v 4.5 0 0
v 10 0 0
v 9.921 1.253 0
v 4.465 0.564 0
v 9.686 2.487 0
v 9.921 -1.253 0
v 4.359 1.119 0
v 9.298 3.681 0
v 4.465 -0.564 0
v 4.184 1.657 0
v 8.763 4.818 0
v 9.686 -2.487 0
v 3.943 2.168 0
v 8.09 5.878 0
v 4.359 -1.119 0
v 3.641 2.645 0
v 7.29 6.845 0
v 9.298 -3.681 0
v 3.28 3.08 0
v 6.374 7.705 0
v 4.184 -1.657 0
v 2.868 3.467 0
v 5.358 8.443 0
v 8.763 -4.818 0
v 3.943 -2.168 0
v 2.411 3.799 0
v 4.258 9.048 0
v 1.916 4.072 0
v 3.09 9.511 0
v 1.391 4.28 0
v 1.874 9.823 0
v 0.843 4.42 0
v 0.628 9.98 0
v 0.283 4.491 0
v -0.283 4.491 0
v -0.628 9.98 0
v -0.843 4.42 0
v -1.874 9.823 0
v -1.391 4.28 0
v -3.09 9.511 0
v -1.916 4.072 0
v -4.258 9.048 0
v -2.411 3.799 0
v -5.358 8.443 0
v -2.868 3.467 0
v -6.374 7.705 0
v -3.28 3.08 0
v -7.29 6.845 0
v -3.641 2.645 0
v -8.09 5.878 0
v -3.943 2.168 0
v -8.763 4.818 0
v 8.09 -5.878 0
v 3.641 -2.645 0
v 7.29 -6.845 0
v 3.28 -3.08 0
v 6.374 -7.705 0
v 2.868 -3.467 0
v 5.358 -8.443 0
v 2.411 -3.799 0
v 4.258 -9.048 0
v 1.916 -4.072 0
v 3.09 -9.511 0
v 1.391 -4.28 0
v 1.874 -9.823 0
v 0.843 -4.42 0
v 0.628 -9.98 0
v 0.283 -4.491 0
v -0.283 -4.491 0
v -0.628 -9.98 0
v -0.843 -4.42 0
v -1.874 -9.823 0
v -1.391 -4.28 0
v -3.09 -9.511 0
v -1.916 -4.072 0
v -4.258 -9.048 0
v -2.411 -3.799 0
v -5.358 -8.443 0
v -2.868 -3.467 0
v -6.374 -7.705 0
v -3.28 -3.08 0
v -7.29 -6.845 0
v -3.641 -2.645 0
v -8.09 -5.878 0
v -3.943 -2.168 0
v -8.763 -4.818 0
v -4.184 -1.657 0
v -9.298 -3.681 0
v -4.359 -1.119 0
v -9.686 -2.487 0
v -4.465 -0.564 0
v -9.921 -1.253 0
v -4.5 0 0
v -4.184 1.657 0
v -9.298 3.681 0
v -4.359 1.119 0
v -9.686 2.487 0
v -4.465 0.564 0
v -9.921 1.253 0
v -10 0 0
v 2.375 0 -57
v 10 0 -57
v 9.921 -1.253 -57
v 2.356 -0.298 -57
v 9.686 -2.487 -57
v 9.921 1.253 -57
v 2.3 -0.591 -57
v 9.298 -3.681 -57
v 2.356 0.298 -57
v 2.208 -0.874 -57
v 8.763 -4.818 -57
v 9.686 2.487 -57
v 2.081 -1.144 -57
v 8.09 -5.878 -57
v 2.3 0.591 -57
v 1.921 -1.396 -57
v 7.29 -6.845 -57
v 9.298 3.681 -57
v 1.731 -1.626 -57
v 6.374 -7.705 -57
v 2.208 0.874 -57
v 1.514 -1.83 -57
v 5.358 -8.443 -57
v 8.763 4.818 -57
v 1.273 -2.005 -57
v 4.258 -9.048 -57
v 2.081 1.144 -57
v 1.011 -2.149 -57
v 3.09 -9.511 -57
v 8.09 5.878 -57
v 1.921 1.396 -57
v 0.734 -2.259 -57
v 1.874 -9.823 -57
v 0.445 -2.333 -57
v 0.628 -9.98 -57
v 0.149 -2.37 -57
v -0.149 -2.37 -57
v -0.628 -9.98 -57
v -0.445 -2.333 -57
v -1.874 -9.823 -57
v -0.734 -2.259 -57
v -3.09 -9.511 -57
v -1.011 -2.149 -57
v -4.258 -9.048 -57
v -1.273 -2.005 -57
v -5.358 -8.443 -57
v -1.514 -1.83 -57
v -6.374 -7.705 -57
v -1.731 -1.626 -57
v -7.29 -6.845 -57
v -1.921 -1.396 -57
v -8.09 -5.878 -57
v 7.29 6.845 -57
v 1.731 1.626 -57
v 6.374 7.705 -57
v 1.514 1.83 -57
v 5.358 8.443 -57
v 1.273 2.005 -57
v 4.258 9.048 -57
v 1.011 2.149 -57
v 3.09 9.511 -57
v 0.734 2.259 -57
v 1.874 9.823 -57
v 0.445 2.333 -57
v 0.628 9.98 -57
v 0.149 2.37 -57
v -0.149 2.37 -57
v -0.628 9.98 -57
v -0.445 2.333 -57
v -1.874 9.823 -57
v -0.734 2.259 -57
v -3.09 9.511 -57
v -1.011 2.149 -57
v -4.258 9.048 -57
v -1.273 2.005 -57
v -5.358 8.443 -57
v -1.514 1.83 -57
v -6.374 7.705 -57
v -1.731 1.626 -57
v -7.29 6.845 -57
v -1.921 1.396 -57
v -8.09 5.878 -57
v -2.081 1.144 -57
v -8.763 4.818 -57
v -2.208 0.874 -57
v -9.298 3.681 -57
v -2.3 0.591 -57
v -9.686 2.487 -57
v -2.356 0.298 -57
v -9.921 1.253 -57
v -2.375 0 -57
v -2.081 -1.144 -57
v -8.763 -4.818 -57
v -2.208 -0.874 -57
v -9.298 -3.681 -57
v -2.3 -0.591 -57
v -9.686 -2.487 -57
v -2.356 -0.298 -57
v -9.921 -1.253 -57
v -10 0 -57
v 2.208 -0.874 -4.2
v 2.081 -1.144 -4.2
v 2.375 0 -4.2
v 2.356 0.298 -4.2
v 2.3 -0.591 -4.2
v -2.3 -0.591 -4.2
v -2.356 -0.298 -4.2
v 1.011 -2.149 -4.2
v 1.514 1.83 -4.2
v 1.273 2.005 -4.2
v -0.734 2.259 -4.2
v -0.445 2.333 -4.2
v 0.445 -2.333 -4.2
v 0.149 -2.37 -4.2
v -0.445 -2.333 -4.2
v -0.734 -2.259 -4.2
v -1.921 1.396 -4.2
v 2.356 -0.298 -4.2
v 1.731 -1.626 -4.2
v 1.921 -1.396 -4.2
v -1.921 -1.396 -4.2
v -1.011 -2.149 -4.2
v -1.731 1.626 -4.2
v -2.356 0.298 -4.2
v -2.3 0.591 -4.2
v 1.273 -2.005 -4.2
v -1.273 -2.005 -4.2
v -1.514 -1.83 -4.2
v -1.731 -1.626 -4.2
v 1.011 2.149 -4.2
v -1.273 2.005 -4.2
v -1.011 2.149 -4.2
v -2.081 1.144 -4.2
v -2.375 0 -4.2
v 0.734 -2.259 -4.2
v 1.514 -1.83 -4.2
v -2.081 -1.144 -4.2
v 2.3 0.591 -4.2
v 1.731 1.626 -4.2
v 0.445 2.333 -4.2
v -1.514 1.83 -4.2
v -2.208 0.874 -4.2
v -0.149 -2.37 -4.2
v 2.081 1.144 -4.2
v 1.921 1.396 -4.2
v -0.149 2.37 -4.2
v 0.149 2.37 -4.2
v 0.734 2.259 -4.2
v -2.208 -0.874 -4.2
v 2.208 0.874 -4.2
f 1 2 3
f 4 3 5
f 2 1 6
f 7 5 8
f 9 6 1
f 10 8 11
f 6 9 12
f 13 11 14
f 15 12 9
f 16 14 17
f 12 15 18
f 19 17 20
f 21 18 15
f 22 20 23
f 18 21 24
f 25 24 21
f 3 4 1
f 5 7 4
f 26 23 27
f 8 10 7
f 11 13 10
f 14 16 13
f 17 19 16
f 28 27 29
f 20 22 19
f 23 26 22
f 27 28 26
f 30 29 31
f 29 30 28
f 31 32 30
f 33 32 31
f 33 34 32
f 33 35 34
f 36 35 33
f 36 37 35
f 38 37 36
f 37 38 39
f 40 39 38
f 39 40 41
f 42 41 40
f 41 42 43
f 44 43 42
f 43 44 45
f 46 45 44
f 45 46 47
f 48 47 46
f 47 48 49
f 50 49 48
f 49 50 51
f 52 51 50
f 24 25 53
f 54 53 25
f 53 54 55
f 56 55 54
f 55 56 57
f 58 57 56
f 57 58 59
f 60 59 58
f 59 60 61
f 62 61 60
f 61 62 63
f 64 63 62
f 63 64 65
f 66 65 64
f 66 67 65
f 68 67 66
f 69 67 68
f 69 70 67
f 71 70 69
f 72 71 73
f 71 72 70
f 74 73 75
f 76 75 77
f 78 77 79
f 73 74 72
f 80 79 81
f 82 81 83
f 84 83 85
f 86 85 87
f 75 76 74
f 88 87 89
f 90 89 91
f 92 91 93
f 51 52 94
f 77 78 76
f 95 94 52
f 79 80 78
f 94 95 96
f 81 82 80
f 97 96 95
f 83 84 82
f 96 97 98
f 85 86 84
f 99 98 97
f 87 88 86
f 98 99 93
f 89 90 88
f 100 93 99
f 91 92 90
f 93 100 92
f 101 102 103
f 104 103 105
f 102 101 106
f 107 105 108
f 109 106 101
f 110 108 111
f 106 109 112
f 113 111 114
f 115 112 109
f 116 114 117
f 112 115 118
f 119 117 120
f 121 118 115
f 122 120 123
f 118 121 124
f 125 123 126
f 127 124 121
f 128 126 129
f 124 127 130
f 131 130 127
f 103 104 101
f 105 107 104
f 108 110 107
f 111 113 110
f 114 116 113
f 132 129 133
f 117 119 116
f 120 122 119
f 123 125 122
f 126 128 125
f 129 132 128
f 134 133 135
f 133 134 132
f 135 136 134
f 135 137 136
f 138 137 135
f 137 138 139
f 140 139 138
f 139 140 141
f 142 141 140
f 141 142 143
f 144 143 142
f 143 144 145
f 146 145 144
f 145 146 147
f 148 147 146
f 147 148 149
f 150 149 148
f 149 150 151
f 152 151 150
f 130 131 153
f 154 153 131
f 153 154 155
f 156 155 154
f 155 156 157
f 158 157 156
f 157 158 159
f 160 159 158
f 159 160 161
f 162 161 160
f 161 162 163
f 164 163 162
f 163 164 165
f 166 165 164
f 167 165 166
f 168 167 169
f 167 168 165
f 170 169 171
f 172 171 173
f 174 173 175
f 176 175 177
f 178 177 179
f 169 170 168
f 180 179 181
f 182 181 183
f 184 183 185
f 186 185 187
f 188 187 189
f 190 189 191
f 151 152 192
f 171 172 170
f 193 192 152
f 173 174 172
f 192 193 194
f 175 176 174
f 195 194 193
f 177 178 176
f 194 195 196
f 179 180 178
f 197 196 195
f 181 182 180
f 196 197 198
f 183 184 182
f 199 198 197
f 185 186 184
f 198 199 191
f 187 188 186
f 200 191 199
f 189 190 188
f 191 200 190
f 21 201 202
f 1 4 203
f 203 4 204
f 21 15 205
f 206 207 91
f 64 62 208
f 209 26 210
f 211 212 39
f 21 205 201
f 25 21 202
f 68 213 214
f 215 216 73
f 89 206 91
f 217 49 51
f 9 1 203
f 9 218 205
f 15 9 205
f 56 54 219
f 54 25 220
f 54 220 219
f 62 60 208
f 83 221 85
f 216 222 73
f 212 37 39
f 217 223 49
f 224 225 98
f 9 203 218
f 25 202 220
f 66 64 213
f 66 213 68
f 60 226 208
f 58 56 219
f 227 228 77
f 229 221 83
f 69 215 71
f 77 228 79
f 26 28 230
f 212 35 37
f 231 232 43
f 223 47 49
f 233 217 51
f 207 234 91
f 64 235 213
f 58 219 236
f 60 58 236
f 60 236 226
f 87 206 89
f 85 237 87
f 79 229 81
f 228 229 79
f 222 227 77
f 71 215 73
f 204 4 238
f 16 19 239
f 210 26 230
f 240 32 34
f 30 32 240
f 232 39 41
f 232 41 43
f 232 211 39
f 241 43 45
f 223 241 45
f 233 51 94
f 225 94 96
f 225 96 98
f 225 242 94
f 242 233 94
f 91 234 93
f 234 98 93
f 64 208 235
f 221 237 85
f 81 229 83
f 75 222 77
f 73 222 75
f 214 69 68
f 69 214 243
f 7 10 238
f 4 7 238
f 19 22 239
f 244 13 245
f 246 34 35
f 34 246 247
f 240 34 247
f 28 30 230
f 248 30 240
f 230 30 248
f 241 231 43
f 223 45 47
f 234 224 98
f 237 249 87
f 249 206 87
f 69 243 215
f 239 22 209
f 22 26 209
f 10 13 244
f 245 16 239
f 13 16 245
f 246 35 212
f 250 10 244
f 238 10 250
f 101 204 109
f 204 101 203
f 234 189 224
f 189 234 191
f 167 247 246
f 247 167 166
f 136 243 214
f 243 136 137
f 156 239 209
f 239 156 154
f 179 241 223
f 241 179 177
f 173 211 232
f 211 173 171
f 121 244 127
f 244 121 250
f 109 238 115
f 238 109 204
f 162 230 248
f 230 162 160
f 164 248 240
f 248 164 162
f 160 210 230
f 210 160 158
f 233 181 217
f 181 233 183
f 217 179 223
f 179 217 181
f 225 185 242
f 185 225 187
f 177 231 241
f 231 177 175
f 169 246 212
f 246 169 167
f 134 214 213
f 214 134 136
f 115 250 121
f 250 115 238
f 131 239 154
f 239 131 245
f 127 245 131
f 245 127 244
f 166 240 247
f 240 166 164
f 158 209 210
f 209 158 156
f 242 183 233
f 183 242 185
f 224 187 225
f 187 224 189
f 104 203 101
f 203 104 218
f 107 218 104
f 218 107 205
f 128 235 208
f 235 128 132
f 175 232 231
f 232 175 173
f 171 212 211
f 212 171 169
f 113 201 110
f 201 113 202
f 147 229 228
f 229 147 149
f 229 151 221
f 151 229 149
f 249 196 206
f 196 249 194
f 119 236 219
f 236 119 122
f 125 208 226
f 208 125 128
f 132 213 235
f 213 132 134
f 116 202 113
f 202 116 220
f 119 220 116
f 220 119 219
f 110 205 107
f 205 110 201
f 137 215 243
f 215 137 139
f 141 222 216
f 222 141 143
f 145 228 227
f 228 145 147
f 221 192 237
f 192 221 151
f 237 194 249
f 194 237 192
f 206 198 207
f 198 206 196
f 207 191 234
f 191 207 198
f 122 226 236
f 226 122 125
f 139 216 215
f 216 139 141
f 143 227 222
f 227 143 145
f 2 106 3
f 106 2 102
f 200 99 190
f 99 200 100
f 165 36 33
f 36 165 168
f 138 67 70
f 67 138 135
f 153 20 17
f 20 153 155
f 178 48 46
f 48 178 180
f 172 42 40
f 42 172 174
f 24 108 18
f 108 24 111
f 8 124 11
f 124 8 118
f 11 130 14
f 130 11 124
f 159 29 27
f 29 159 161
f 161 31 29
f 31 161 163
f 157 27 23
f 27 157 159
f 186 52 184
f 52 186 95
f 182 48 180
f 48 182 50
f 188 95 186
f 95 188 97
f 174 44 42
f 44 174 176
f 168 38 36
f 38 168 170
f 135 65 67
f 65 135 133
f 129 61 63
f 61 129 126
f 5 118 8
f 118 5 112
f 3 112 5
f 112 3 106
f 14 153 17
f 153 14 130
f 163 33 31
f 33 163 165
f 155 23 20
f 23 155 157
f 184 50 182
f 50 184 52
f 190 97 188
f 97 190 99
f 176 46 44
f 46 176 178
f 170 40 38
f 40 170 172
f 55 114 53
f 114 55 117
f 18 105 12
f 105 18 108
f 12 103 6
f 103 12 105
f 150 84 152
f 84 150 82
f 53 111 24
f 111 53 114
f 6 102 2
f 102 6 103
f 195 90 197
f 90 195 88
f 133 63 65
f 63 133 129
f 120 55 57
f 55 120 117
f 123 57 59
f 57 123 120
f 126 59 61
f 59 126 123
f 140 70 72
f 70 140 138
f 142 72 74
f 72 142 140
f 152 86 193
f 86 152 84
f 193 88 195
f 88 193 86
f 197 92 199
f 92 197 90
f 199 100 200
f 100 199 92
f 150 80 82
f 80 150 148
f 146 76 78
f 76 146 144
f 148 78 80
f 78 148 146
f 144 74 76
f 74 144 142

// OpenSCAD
$fn = 50;


difference() {
	union() {
		translate(v = [0, 0, -57.0000000000]) {
			cylinder(h = 57, r = 10.0000000000);
		}
	}
	union() {
		translate(v = [0, 0, 0]) {
			rotate(a = [0, 0, 0]) {
				difference() {
					union() {
						#translate(v = [0, 0, -57.0000000000]) {
							cylinder(h = 57, r = 2.2500000000);
						}
						#translate(v = [0, 0, -4.2000000000]) {
							cylinder(h = 4.2000000000, r = 10.0000000000, r1 = 2.3750000000, r2 = 4.5000000000);
						}
						#translate(v = [0, 0, -57.0000000000]) {
							cylinder(h = 57, r = 2.3750000000);
						}
						#translate(v = [0, 0, -57.0000000000]) {
							cylinder(h = 57, r = 2.2500000000);
						}
					}
					union();
				}
			}
		}
	}
}
